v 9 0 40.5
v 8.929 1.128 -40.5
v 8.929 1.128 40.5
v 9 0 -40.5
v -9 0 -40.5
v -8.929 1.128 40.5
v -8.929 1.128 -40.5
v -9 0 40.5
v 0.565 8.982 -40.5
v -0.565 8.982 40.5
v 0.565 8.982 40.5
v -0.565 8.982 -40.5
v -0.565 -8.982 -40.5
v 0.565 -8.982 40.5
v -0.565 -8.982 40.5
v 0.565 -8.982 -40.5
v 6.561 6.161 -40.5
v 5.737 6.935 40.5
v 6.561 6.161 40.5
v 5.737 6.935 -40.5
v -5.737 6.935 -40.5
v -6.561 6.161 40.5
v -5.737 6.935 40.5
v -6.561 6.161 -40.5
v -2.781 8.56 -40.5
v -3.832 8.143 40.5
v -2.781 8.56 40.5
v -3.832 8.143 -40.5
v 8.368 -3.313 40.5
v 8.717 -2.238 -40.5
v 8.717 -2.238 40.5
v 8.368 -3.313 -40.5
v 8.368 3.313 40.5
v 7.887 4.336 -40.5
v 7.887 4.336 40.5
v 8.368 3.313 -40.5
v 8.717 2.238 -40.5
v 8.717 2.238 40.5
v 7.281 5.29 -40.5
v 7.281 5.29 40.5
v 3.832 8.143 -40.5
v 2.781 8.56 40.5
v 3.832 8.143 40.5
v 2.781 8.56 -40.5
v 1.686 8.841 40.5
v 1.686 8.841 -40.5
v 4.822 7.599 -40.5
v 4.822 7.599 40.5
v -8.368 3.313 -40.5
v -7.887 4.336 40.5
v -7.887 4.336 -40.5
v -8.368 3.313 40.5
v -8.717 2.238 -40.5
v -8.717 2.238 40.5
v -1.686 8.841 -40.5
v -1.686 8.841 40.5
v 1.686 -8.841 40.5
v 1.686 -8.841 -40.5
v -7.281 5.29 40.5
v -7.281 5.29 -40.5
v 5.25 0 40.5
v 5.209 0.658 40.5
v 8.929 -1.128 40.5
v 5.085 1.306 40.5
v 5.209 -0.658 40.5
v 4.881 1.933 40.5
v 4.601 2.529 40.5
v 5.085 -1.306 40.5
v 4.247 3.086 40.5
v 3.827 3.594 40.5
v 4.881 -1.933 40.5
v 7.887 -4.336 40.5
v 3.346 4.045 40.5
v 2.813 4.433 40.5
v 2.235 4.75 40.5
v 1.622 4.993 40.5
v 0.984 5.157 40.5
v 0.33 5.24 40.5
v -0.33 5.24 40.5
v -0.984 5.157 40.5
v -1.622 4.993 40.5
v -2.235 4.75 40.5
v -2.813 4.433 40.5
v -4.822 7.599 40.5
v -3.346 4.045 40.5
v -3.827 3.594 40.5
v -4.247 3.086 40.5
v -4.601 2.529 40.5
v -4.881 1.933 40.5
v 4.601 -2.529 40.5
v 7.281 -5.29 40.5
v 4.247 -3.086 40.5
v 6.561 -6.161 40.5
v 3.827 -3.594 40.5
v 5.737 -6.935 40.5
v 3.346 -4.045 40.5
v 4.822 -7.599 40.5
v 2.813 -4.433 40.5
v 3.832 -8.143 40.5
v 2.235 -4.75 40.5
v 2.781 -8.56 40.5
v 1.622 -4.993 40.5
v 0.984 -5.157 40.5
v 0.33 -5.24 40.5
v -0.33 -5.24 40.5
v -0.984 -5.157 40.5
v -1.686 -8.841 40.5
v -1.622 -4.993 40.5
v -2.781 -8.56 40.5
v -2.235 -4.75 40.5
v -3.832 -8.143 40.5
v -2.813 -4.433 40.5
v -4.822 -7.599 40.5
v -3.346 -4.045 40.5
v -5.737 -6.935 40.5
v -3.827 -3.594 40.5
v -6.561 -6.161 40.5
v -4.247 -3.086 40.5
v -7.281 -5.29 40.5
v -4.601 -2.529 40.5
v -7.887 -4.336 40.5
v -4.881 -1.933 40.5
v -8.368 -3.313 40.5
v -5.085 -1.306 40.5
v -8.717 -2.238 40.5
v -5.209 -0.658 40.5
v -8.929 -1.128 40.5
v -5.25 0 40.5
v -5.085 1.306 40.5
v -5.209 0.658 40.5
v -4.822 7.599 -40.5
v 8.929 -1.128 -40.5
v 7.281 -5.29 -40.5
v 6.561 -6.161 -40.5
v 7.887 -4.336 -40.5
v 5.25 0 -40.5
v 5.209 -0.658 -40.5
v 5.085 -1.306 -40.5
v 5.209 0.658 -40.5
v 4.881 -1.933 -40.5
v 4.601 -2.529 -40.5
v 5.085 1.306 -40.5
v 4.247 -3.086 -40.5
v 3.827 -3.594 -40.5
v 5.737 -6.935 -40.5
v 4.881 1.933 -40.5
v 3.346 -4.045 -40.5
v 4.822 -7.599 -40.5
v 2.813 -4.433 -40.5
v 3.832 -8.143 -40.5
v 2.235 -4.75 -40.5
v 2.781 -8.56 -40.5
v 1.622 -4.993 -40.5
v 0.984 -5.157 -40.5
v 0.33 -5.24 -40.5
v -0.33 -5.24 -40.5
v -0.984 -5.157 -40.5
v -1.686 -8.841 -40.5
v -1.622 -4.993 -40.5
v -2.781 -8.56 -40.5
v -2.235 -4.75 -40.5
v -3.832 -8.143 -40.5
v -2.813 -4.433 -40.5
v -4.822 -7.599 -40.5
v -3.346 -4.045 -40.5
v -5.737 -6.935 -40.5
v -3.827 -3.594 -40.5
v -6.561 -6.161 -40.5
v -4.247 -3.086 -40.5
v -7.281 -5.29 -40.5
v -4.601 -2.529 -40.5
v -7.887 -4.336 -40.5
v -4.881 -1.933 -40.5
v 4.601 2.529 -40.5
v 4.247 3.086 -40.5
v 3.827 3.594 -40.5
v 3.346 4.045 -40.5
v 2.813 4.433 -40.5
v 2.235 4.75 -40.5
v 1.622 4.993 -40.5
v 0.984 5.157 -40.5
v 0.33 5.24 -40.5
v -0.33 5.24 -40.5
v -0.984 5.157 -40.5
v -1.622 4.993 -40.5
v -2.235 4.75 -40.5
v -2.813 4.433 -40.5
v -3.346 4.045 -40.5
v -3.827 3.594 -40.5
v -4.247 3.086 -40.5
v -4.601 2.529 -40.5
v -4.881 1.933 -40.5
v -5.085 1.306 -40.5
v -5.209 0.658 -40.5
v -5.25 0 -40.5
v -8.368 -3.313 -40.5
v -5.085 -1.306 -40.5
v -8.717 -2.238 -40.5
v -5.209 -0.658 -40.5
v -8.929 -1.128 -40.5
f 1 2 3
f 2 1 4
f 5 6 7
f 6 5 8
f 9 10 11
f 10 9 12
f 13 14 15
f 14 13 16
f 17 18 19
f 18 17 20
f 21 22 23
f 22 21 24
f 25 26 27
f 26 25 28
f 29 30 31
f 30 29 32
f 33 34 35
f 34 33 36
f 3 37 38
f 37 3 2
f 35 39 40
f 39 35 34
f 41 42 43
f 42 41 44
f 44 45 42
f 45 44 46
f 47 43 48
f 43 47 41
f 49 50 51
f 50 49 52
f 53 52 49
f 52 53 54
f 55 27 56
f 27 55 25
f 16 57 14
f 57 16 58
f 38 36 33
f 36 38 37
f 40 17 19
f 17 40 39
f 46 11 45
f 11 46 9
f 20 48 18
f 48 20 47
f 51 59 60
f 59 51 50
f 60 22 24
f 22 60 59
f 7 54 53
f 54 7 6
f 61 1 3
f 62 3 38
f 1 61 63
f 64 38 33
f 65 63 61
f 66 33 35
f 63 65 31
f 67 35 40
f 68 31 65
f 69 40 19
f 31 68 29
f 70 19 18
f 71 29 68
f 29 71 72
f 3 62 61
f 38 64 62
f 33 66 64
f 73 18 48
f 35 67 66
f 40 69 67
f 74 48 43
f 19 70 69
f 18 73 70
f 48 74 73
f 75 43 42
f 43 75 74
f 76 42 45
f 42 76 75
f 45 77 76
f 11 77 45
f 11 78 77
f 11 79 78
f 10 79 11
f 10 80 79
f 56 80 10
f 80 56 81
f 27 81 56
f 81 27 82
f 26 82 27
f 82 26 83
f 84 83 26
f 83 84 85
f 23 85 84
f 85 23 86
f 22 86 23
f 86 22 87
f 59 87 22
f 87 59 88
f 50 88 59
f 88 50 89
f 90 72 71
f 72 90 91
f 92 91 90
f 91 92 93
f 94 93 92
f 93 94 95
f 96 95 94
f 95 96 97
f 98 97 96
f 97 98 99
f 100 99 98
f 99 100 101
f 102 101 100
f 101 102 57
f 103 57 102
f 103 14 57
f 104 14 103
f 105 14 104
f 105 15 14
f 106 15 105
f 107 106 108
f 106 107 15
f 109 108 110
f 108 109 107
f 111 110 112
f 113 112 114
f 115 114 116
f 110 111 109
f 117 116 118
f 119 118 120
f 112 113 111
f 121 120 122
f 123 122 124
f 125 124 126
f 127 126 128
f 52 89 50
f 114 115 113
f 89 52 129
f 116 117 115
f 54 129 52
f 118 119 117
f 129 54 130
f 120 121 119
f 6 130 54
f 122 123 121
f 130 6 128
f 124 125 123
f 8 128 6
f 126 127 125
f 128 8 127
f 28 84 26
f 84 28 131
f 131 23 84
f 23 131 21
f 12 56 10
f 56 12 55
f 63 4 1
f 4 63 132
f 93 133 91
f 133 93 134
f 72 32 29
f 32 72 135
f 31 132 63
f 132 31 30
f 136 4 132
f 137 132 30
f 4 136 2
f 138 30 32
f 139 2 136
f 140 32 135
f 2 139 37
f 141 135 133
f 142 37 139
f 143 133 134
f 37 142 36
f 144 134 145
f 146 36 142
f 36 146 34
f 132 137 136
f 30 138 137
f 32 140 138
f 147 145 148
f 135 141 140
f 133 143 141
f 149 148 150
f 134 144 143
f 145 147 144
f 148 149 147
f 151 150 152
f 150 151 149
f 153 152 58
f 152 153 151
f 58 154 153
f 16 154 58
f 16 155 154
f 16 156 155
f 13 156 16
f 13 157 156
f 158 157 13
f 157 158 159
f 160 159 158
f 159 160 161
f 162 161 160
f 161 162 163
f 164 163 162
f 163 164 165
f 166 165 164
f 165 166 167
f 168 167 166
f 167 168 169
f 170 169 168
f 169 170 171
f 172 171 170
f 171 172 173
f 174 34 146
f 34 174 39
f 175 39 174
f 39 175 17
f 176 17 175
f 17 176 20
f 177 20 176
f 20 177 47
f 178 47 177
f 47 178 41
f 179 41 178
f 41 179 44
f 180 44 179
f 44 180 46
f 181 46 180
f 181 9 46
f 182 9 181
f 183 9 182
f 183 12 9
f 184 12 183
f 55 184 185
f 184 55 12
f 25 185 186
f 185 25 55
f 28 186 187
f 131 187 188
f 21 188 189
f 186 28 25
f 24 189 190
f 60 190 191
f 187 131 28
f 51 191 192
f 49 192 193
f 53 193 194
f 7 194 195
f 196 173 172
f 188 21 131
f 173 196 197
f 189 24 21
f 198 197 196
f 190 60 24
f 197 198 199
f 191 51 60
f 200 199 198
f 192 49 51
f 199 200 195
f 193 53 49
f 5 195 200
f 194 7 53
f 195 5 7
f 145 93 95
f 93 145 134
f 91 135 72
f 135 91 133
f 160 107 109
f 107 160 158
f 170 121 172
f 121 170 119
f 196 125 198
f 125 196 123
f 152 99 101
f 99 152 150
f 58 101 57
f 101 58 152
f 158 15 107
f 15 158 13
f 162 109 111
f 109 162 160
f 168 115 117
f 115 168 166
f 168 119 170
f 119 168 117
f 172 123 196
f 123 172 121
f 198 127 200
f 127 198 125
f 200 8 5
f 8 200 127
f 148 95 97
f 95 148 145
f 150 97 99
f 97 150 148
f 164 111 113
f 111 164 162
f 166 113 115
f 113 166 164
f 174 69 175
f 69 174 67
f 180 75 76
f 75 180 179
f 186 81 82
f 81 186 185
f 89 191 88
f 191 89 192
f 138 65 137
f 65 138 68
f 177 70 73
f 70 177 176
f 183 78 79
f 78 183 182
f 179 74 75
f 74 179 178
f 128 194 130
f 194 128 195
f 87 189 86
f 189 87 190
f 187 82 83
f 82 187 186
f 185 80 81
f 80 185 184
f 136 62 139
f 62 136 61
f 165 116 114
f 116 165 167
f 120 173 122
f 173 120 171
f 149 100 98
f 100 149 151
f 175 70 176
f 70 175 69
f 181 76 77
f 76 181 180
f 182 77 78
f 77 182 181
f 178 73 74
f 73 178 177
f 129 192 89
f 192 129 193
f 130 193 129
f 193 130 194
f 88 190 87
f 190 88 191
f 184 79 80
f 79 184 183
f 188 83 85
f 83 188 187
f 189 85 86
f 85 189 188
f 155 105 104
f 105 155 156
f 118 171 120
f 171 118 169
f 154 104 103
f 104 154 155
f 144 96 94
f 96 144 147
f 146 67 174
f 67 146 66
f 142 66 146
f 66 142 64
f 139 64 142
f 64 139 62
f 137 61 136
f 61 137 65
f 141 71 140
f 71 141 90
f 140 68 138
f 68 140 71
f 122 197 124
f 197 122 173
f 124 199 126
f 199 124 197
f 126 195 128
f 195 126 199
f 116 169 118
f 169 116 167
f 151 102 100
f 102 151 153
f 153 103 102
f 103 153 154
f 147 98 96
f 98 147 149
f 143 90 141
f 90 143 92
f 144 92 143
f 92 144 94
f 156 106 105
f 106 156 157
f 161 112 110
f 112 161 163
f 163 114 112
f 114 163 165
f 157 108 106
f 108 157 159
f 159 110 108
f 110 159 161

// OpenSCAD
$fn = 50;


difference() {
	union() {
		translate(v = [0, 0, -40.5000000000]) {
			cylinder(h = 81, r = 9.0000000000);
		}
	}
	union() {
		translate(v = [0, 0, -100.0000000000]) {
			cylinder(h = 200, r = 5.2500000000);
		}
	}
}
